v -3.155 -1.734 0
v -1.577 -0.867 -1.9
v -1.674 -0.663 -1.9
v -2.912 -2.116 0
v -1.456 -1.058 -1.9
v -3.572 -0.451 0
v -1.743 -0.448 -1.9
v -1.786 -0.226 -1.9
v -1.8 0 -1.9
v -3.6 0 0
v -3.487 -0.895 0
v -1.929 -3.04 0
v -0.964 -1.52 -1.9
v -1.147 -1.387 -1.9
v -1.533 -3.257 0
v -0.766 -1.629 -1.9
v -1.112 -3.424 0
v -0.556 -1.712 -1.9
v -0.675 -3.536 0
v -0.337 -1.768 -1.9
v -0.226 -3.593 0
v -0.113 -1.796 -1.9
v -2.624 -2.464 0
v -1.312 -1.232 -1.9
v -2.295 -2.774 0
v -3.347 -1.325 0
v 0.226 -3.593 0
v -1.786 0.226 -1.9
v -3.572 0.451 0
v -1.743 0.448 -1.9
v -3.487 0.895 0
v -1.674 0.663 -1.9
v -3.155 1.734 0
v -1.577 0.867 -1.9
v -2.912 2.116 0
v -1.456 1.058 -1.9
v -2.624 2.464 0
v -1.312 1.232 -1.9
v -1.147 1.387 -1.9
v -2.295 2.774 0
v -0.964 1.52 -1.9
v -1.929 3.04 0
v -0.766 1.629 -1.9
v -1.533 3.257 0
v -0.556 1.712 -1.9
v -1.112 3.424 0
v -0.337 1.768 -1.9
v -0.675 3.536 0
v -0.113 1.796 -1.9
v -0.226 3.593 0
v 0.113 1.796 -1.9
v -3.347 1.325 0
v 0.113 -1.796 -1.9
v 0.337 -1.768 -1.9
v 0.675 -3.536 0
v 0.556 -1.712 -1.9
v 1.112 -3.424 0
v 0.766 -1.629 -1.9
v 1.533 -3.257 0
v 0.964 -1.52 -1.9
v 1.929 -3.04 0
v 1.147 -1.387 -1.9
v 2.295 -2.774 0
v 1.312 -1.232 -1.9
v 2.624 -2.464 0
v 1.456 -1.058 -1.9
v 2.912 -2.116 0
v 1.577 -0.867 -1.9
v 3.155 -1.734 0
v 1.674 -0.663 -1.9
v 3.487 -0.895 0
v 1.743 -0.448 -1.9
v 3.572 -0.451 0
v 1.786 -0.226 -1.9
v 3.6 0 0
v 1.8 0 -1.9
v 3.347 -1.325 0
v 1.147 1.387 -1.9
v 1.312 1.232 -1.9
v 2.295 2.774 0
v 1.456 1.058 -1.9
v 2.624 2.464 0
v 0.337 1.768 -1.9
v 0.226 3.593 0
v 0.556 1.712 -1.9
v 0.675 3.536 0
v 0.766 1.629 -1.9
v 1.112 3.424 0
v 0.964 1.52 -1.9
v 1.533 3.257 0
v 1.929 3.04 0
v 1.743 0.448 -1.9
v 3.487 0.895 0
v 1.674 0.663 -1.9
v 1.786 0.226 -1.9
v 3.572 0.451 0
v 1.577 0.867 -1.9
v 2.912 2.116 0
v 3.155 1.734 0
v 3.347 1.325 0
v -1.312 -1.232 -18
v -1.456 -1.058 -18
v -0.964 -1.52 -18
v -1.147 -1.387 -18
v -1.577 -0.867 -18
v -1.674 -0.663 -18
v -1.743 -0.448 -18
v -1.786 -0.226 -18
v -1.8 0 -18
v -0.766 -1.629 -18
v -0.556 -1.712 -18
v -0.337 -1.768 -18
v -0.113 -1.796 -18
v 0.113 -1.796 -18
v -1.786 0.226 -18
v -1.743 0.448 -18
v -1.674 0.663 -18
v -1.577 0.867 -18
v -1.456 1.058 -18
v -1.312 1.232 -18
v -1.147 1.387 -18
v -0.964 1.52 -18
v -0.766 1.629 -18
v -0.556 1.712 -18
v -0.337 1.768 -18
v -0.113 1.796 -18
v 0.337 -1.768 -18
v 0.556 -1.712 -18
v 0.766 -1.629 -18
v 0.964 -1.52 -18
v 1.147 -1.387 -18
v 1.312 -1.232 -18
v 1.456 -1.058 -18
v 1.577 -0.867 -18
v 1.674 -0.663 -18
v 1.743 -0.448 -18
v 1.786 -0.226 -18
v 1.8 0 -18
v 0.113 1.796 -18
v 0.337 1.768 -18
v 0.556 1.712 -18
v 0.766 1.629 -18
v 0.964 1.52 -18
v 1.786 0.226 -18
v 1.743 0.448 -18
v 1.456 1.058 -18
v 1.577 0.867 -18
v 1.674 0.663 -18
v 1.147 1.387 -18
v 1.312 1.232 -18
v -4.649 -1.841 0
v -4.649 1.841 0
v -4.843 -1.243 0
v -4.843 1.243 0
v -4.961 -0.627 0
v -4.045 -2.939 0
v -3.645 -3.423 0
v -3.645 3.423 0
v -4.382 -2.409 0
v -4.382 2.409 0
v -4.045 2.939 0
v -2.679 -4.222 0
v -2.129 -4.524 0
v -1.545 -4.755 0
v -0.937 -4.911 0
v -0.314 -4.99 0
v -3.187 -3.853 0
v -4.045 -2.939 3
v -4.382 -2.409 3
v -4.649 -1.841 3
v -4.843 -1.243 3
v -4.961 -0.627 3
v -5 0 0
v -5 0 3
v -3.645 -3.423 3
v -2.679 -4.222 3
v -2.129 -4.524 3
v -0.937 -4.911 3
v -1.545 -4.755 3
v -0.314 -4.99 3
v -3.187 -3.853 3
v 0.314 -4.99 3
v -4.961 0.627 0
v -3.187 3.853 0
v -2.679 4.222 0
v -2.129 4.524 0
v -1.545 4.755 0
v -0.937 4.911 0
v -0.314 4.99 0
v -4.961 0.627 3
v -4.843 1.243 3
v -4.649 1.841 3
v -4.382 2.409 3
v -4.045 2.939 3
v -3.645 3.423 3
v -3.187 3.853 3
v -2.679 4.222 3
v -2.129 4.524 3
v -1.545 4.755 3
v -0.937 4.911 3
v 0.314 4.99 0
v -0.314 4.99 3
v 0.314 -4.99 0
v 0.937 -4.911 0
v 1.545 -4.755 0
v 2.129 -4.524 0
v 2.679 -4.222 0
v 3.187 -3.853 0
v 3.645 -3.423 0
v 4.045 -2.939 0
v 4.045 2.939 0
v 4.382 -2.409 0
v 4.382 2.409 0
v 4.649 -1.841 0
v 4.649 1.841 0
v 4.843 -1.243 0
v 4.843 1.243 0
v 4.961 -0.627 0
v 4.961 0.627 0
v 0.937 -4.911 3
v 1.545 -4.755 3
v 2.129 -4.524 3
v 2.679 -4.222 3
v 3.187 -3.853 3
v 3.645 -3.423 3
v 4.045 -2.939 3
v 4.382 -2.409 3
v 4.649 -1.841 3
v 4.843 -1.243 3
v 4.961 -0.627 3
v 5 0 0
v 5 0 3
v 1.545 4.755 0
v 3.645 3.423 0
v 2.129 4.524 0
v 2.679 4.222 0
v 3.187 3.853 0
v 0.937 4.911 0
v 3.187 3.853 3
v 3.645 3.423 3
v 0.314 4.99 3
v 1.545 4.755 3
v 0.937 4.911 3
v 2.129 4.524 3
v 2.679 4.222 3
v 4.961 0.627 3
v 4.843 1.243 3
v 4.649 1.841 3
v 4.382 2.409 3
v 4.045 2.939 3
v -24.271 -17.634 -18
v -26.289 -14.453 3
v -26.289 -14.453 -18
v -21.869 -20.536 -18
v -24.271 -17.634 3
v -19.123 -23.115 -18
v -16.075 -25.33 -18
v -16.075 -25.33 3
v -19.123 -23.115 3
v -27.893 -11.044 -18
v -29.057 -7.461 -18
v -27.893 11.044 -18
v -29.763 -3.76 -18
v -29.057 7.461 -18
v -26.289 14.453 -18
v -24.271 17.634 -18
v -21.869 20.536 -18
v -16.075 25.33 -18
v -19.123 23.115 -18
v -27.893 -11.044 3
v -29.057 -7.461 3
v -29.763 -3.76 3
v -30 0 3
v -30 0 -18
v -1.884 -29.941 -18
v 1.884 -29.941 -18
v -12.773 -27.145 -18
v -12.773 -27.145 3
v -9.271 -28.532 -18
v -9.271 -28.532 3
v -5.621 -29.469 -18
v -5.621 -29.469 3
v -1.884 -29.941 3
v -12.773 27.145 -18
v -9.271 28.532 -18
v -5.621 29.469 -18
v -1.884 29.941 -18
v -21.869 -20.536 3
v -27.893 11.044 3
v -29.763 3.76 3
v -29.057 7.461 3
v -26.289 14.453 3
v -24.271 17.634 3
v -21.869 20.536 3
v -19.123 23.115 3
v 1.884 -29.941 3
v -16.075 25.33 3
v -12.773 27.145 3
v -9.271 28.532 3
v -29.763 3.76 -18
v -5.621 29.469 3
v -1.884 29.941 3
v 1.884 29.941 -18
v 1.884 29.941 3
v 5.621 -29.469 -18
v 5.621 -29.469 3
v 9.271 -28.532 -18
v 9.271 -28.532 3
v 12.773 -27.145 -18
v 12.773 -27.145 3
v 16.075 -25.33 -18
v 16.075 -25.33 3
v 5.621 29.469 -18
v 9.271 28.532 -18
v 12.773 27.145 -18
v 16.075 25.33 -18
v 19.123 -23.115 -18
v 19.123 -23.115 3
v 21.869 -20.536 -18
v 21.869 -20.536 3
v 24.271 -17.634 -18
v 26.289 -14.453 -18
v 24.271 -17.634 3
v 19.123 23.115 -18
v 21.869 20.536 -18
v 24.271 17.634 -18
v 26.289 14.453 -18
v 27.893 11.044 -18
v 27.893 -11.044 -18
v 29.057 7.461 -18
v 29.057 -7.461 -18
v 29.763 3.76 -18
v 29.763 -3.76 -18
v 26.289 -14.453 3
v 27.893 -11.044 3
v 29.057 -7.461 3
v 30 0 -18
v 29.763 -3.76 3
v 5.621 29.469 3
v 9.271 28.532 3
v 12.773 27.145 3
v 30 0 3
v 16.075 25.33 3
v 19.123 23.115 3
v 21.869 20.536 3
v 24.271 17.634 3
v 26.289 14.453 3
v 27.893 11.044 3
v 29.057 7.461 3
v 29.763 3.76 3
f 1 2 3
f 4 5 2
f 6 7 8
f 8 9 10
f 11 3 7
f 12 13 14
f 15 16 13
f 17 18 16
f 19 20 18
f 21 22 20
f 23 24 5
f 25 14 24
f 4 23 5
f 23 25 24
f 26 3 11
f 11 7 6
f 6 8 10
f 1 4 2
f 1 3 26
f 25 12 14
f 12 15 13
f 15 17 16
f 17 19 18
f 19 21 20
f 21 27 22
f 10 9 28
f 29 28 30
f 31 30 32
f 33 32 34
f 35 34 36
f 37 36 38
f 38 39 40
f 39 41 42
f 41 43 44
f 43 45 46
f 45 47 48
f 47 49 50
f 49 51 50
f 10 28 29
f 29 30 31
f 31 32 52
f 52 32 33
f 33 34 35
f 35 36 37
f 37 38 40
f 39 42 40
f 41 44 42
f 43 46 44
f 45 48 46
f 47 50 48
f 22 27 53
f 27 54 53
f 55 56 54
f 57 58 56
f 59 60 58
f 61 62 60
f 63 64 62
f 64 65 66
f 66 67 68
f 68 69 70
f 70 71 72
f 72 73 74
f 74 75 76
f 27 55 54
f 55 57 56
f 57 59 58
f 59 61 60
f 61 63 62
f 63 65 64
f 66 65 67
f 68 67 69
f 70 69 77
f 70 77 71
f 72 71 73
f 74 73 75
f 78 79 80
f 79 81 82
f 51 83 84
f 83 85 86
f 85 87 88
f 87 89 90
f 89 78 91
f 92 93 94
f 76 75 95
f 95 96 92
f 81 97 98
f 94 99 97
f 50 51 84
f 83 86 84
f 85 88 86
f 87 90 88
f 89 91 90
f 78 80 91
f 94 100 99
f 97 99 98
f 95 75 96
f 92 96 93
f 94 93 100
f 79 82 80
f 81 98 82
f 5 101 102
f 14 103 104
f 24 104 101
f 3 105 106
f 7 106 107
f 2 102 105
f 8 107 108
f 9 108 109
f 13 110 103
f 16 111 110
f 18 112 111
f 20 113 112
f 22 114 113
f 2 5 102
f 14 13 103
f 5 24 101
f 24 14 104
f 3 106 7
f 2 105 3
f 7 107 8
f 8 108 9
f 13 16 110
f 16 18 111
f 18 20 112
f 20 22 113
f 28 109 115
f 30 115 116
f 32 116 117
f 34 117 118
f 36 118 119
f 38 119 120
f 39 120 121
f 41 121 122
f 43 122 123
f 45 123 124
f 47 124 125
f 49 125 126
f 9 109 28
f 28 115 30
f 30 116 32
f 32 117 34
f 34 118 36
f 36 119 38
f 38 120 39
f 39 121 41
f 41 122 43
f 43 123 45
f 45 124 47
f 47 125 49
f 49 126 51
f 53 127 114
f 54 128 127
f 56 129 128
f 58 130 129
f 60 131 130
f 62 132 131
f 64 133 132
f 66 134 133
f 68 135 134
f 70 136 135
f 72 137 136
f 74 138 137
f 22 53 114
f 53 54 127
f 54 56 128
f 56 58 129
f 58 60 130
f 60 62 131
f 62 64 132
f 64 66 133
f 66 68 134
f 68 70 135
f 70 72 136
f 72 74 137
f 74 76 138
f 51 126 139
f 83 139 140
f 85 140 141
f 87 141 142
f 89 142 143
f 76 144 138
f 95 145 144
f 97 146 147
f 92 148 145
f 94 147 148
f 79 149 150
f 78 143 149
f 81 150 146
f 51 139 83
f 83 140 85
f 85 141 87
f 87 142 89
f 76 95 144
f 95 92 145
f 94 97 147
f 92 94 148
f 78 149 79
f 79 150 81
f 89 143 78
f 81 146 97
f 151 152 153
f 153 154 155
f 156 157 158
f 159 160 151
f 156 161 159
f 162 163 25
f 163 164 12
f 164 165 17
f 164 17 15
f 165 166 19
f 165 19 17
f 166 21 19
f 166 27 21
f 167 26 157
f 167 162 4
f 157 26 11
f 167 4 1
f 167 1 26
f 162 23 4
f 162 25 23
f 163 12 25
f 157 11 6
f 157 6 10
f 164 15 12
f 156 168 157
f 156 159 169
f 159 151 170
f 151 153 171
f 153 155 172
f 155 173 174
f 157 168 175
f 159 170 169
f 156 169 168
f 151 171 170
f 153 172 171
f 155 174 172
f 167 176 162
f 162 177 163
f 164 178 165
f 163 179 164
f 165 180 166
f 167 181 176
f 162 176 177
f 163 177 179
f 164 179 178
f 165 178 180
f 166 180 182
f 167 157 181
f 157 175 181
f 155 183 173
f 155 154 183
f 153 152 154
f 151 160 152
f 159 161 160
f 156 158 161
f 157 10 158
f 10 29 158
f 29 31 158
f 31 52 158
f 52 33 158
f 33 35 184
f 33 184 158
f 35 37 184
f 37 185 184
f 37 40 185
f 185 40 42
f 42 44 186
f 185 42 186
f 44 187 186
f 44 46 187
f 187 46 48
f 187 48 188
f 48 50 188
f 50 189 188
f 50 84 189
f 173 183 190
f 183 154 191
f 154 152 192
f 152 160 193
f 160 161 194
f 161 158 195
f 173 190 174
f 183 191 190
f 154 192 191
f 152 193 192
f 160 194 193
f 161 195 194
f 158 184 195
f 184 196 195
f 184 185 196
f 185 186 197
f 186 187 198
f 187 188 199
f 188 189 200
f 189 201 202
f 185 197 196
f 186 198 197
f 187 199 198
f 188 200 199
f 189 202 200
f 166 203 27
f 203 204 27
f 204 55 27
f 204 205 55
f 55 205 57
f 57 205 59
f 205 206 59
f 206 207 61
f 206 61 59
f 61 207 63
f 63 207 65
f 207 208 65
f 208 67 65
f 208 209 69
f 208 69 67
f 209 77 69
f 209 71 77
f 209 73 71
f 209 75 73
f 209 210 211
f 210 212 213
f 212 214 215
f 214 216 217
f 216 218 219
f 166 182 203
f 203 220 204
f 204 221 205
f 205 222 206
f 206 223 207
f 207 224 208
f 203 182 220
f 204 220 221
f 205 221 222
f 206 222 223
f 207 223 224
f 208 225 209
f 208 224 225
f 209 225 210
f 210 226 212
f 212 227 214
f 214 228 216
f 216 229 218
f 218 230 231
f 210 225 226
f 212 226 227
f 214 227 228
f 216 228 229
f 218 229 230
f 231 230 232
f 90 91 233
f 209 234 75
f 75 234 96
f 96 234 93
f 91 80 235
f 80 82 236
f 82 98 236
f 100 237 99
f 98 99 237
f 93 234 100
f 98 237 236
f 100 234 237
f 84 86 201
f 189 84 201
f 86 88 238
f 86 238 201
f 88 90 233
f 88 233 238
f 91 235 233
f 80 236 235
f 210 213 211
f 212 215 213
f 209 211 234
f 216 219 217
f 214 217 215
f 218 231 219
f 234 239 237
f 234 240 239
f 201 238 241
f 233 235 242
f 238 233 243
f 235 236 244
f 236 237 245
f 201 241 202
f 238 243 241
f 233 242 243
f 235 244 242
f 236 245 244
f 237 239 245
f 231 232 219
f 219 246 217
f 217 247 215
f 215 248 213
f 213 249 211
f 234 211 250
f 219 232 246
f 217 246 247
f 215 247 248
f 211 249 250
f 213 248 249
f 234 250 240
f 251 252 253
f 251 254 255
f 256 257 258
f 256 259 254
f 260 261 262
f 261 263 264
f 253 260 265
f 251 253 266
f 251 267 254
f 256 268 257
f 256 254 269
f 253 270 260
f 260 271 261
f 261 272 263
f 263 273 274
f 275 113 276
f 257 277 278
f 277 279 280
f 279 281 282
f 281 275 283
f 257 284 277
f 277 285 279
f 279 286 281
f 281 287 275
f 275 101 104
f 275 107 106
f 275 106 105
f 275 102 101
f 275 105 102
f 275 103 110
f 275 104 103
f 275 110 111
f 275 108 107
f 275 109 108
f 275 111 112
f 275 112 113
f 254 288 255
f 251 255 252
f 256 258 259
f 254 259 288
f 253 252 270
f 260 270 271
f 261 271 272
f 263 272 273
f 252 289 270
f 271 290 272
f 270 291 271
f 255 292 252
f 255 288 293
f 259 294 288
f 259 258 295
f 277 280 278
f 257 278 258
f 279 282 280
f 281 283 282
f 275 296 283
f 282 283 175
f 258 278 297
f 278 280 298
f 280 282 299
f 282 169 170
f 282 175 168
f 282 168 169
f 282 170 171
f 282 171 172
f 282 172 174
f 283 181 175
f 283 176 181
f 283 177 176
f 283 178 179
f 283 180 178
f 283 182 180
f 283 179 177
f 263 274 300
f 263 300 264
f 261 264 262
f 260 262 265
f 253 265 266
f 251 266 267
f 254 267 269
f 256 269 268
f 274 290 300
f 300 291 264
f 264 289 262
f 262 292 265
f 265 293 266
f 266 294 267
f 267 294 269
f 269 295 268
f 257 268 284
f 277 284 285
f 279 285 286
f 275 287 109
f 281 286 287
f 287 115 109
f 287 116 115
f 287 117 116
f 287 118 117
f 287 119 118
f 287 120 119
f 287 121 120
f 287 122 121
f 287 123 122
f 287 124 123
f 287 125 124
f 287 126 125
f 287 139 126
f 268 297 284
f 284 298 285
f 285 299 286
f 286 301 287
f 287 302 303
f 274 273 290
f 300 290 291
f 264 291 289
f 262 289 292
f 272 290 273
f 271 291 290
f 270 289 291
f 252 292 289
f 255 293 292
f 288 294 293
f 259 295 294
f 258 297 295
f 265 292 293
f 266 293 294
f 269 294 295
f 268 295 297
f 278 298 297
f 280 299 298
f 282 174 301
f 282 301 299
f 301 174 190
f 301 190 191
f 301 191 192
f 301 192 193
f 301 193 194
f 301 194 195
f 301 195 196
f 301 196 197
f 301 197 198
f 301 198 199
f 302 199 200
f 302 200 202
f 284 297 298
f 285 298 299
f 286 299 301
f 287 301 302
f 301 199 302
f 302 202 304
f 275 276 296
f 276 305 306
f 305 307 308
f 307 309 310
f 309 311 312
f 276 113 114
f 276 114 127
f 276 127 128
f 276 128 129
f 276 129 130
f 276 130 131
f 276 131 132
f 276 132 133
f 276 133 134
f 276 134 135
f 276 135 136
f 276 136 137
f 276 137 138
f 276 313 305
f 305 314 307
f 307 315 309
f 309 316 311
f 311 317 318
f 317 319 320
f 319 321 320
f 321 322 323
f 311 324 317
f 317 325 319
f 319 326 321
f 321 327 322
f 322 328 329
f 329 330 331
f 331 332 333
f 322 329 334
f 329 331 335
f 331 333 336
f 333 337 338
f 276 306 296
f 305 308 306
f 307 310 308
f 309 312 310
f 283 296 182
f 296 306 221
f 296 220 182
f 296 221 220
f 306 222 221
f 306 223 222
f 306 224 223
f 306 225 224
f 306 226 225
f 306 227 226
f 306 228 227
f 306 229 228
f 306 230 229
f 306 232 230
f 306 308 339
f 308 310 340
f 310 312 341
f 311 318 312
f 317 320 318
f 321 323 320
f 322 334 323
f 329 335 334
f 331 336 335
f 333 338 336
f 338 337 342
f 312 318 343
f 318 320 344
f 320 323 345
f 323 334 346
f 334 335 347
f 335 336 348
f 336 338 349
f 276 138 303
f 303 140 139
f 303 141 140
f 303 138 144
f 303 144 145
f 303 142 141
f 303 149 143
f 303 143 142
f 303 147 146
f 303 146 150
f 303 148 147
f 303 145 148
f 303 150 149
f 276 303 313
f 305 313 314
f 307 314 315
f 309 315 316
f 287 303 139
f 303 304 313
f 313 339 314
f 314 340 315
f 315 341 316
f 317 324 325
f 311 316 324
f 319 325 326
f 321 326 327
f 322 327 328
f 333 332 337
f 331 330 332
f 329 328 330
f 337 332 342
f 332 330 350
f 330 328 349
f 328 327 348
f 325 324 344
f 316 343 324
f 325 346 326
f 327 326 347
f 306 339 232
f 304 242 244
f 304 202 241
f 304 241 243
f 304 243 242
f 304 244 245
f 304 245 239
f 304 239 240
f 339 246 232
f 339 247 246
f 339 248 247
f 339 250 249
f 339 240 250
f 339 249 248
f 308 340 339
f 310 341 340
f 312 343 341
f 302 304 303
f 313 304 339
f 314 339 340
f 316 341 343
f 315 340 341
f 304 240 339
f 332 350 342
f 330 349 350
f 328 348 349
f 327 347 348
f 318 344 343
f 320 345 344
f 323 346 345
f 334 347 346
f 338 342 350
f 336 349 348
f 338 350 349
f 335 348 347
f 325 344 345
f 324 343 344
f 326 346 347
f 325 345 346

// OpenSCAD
$fn = 50;

difference() {
	union() {
		translate(v = [0, 0, -18.0]) {
			cylinder(h = 21, r = 30.0);
		}
	}
	union() {
		translate(v = [0, 0, 0]) {
			rotate(a = [0, 0, 0]) {
				difference() {
					union() {
						translate(v = [0, 0, -21.0]) {
							cylinder(h = 21, r = 1.5);
						}
						translate(v = [0, 0, -1.9]) {
							cylinder(h = 1.9, r1 = 1.8, r2 = 3.6);
						}
						translate(v = [0, 0, -21.0]) {
							cylinder(h = 21, r = 1.8);
						}
						translate(v = [0, 0, -21.0]) {
							cylinder(h = 21, r = 1.5);
						}
					}
					union();
				}
			}
		}
		#cylinder(h = 3, r = 5.0);
	}
}
